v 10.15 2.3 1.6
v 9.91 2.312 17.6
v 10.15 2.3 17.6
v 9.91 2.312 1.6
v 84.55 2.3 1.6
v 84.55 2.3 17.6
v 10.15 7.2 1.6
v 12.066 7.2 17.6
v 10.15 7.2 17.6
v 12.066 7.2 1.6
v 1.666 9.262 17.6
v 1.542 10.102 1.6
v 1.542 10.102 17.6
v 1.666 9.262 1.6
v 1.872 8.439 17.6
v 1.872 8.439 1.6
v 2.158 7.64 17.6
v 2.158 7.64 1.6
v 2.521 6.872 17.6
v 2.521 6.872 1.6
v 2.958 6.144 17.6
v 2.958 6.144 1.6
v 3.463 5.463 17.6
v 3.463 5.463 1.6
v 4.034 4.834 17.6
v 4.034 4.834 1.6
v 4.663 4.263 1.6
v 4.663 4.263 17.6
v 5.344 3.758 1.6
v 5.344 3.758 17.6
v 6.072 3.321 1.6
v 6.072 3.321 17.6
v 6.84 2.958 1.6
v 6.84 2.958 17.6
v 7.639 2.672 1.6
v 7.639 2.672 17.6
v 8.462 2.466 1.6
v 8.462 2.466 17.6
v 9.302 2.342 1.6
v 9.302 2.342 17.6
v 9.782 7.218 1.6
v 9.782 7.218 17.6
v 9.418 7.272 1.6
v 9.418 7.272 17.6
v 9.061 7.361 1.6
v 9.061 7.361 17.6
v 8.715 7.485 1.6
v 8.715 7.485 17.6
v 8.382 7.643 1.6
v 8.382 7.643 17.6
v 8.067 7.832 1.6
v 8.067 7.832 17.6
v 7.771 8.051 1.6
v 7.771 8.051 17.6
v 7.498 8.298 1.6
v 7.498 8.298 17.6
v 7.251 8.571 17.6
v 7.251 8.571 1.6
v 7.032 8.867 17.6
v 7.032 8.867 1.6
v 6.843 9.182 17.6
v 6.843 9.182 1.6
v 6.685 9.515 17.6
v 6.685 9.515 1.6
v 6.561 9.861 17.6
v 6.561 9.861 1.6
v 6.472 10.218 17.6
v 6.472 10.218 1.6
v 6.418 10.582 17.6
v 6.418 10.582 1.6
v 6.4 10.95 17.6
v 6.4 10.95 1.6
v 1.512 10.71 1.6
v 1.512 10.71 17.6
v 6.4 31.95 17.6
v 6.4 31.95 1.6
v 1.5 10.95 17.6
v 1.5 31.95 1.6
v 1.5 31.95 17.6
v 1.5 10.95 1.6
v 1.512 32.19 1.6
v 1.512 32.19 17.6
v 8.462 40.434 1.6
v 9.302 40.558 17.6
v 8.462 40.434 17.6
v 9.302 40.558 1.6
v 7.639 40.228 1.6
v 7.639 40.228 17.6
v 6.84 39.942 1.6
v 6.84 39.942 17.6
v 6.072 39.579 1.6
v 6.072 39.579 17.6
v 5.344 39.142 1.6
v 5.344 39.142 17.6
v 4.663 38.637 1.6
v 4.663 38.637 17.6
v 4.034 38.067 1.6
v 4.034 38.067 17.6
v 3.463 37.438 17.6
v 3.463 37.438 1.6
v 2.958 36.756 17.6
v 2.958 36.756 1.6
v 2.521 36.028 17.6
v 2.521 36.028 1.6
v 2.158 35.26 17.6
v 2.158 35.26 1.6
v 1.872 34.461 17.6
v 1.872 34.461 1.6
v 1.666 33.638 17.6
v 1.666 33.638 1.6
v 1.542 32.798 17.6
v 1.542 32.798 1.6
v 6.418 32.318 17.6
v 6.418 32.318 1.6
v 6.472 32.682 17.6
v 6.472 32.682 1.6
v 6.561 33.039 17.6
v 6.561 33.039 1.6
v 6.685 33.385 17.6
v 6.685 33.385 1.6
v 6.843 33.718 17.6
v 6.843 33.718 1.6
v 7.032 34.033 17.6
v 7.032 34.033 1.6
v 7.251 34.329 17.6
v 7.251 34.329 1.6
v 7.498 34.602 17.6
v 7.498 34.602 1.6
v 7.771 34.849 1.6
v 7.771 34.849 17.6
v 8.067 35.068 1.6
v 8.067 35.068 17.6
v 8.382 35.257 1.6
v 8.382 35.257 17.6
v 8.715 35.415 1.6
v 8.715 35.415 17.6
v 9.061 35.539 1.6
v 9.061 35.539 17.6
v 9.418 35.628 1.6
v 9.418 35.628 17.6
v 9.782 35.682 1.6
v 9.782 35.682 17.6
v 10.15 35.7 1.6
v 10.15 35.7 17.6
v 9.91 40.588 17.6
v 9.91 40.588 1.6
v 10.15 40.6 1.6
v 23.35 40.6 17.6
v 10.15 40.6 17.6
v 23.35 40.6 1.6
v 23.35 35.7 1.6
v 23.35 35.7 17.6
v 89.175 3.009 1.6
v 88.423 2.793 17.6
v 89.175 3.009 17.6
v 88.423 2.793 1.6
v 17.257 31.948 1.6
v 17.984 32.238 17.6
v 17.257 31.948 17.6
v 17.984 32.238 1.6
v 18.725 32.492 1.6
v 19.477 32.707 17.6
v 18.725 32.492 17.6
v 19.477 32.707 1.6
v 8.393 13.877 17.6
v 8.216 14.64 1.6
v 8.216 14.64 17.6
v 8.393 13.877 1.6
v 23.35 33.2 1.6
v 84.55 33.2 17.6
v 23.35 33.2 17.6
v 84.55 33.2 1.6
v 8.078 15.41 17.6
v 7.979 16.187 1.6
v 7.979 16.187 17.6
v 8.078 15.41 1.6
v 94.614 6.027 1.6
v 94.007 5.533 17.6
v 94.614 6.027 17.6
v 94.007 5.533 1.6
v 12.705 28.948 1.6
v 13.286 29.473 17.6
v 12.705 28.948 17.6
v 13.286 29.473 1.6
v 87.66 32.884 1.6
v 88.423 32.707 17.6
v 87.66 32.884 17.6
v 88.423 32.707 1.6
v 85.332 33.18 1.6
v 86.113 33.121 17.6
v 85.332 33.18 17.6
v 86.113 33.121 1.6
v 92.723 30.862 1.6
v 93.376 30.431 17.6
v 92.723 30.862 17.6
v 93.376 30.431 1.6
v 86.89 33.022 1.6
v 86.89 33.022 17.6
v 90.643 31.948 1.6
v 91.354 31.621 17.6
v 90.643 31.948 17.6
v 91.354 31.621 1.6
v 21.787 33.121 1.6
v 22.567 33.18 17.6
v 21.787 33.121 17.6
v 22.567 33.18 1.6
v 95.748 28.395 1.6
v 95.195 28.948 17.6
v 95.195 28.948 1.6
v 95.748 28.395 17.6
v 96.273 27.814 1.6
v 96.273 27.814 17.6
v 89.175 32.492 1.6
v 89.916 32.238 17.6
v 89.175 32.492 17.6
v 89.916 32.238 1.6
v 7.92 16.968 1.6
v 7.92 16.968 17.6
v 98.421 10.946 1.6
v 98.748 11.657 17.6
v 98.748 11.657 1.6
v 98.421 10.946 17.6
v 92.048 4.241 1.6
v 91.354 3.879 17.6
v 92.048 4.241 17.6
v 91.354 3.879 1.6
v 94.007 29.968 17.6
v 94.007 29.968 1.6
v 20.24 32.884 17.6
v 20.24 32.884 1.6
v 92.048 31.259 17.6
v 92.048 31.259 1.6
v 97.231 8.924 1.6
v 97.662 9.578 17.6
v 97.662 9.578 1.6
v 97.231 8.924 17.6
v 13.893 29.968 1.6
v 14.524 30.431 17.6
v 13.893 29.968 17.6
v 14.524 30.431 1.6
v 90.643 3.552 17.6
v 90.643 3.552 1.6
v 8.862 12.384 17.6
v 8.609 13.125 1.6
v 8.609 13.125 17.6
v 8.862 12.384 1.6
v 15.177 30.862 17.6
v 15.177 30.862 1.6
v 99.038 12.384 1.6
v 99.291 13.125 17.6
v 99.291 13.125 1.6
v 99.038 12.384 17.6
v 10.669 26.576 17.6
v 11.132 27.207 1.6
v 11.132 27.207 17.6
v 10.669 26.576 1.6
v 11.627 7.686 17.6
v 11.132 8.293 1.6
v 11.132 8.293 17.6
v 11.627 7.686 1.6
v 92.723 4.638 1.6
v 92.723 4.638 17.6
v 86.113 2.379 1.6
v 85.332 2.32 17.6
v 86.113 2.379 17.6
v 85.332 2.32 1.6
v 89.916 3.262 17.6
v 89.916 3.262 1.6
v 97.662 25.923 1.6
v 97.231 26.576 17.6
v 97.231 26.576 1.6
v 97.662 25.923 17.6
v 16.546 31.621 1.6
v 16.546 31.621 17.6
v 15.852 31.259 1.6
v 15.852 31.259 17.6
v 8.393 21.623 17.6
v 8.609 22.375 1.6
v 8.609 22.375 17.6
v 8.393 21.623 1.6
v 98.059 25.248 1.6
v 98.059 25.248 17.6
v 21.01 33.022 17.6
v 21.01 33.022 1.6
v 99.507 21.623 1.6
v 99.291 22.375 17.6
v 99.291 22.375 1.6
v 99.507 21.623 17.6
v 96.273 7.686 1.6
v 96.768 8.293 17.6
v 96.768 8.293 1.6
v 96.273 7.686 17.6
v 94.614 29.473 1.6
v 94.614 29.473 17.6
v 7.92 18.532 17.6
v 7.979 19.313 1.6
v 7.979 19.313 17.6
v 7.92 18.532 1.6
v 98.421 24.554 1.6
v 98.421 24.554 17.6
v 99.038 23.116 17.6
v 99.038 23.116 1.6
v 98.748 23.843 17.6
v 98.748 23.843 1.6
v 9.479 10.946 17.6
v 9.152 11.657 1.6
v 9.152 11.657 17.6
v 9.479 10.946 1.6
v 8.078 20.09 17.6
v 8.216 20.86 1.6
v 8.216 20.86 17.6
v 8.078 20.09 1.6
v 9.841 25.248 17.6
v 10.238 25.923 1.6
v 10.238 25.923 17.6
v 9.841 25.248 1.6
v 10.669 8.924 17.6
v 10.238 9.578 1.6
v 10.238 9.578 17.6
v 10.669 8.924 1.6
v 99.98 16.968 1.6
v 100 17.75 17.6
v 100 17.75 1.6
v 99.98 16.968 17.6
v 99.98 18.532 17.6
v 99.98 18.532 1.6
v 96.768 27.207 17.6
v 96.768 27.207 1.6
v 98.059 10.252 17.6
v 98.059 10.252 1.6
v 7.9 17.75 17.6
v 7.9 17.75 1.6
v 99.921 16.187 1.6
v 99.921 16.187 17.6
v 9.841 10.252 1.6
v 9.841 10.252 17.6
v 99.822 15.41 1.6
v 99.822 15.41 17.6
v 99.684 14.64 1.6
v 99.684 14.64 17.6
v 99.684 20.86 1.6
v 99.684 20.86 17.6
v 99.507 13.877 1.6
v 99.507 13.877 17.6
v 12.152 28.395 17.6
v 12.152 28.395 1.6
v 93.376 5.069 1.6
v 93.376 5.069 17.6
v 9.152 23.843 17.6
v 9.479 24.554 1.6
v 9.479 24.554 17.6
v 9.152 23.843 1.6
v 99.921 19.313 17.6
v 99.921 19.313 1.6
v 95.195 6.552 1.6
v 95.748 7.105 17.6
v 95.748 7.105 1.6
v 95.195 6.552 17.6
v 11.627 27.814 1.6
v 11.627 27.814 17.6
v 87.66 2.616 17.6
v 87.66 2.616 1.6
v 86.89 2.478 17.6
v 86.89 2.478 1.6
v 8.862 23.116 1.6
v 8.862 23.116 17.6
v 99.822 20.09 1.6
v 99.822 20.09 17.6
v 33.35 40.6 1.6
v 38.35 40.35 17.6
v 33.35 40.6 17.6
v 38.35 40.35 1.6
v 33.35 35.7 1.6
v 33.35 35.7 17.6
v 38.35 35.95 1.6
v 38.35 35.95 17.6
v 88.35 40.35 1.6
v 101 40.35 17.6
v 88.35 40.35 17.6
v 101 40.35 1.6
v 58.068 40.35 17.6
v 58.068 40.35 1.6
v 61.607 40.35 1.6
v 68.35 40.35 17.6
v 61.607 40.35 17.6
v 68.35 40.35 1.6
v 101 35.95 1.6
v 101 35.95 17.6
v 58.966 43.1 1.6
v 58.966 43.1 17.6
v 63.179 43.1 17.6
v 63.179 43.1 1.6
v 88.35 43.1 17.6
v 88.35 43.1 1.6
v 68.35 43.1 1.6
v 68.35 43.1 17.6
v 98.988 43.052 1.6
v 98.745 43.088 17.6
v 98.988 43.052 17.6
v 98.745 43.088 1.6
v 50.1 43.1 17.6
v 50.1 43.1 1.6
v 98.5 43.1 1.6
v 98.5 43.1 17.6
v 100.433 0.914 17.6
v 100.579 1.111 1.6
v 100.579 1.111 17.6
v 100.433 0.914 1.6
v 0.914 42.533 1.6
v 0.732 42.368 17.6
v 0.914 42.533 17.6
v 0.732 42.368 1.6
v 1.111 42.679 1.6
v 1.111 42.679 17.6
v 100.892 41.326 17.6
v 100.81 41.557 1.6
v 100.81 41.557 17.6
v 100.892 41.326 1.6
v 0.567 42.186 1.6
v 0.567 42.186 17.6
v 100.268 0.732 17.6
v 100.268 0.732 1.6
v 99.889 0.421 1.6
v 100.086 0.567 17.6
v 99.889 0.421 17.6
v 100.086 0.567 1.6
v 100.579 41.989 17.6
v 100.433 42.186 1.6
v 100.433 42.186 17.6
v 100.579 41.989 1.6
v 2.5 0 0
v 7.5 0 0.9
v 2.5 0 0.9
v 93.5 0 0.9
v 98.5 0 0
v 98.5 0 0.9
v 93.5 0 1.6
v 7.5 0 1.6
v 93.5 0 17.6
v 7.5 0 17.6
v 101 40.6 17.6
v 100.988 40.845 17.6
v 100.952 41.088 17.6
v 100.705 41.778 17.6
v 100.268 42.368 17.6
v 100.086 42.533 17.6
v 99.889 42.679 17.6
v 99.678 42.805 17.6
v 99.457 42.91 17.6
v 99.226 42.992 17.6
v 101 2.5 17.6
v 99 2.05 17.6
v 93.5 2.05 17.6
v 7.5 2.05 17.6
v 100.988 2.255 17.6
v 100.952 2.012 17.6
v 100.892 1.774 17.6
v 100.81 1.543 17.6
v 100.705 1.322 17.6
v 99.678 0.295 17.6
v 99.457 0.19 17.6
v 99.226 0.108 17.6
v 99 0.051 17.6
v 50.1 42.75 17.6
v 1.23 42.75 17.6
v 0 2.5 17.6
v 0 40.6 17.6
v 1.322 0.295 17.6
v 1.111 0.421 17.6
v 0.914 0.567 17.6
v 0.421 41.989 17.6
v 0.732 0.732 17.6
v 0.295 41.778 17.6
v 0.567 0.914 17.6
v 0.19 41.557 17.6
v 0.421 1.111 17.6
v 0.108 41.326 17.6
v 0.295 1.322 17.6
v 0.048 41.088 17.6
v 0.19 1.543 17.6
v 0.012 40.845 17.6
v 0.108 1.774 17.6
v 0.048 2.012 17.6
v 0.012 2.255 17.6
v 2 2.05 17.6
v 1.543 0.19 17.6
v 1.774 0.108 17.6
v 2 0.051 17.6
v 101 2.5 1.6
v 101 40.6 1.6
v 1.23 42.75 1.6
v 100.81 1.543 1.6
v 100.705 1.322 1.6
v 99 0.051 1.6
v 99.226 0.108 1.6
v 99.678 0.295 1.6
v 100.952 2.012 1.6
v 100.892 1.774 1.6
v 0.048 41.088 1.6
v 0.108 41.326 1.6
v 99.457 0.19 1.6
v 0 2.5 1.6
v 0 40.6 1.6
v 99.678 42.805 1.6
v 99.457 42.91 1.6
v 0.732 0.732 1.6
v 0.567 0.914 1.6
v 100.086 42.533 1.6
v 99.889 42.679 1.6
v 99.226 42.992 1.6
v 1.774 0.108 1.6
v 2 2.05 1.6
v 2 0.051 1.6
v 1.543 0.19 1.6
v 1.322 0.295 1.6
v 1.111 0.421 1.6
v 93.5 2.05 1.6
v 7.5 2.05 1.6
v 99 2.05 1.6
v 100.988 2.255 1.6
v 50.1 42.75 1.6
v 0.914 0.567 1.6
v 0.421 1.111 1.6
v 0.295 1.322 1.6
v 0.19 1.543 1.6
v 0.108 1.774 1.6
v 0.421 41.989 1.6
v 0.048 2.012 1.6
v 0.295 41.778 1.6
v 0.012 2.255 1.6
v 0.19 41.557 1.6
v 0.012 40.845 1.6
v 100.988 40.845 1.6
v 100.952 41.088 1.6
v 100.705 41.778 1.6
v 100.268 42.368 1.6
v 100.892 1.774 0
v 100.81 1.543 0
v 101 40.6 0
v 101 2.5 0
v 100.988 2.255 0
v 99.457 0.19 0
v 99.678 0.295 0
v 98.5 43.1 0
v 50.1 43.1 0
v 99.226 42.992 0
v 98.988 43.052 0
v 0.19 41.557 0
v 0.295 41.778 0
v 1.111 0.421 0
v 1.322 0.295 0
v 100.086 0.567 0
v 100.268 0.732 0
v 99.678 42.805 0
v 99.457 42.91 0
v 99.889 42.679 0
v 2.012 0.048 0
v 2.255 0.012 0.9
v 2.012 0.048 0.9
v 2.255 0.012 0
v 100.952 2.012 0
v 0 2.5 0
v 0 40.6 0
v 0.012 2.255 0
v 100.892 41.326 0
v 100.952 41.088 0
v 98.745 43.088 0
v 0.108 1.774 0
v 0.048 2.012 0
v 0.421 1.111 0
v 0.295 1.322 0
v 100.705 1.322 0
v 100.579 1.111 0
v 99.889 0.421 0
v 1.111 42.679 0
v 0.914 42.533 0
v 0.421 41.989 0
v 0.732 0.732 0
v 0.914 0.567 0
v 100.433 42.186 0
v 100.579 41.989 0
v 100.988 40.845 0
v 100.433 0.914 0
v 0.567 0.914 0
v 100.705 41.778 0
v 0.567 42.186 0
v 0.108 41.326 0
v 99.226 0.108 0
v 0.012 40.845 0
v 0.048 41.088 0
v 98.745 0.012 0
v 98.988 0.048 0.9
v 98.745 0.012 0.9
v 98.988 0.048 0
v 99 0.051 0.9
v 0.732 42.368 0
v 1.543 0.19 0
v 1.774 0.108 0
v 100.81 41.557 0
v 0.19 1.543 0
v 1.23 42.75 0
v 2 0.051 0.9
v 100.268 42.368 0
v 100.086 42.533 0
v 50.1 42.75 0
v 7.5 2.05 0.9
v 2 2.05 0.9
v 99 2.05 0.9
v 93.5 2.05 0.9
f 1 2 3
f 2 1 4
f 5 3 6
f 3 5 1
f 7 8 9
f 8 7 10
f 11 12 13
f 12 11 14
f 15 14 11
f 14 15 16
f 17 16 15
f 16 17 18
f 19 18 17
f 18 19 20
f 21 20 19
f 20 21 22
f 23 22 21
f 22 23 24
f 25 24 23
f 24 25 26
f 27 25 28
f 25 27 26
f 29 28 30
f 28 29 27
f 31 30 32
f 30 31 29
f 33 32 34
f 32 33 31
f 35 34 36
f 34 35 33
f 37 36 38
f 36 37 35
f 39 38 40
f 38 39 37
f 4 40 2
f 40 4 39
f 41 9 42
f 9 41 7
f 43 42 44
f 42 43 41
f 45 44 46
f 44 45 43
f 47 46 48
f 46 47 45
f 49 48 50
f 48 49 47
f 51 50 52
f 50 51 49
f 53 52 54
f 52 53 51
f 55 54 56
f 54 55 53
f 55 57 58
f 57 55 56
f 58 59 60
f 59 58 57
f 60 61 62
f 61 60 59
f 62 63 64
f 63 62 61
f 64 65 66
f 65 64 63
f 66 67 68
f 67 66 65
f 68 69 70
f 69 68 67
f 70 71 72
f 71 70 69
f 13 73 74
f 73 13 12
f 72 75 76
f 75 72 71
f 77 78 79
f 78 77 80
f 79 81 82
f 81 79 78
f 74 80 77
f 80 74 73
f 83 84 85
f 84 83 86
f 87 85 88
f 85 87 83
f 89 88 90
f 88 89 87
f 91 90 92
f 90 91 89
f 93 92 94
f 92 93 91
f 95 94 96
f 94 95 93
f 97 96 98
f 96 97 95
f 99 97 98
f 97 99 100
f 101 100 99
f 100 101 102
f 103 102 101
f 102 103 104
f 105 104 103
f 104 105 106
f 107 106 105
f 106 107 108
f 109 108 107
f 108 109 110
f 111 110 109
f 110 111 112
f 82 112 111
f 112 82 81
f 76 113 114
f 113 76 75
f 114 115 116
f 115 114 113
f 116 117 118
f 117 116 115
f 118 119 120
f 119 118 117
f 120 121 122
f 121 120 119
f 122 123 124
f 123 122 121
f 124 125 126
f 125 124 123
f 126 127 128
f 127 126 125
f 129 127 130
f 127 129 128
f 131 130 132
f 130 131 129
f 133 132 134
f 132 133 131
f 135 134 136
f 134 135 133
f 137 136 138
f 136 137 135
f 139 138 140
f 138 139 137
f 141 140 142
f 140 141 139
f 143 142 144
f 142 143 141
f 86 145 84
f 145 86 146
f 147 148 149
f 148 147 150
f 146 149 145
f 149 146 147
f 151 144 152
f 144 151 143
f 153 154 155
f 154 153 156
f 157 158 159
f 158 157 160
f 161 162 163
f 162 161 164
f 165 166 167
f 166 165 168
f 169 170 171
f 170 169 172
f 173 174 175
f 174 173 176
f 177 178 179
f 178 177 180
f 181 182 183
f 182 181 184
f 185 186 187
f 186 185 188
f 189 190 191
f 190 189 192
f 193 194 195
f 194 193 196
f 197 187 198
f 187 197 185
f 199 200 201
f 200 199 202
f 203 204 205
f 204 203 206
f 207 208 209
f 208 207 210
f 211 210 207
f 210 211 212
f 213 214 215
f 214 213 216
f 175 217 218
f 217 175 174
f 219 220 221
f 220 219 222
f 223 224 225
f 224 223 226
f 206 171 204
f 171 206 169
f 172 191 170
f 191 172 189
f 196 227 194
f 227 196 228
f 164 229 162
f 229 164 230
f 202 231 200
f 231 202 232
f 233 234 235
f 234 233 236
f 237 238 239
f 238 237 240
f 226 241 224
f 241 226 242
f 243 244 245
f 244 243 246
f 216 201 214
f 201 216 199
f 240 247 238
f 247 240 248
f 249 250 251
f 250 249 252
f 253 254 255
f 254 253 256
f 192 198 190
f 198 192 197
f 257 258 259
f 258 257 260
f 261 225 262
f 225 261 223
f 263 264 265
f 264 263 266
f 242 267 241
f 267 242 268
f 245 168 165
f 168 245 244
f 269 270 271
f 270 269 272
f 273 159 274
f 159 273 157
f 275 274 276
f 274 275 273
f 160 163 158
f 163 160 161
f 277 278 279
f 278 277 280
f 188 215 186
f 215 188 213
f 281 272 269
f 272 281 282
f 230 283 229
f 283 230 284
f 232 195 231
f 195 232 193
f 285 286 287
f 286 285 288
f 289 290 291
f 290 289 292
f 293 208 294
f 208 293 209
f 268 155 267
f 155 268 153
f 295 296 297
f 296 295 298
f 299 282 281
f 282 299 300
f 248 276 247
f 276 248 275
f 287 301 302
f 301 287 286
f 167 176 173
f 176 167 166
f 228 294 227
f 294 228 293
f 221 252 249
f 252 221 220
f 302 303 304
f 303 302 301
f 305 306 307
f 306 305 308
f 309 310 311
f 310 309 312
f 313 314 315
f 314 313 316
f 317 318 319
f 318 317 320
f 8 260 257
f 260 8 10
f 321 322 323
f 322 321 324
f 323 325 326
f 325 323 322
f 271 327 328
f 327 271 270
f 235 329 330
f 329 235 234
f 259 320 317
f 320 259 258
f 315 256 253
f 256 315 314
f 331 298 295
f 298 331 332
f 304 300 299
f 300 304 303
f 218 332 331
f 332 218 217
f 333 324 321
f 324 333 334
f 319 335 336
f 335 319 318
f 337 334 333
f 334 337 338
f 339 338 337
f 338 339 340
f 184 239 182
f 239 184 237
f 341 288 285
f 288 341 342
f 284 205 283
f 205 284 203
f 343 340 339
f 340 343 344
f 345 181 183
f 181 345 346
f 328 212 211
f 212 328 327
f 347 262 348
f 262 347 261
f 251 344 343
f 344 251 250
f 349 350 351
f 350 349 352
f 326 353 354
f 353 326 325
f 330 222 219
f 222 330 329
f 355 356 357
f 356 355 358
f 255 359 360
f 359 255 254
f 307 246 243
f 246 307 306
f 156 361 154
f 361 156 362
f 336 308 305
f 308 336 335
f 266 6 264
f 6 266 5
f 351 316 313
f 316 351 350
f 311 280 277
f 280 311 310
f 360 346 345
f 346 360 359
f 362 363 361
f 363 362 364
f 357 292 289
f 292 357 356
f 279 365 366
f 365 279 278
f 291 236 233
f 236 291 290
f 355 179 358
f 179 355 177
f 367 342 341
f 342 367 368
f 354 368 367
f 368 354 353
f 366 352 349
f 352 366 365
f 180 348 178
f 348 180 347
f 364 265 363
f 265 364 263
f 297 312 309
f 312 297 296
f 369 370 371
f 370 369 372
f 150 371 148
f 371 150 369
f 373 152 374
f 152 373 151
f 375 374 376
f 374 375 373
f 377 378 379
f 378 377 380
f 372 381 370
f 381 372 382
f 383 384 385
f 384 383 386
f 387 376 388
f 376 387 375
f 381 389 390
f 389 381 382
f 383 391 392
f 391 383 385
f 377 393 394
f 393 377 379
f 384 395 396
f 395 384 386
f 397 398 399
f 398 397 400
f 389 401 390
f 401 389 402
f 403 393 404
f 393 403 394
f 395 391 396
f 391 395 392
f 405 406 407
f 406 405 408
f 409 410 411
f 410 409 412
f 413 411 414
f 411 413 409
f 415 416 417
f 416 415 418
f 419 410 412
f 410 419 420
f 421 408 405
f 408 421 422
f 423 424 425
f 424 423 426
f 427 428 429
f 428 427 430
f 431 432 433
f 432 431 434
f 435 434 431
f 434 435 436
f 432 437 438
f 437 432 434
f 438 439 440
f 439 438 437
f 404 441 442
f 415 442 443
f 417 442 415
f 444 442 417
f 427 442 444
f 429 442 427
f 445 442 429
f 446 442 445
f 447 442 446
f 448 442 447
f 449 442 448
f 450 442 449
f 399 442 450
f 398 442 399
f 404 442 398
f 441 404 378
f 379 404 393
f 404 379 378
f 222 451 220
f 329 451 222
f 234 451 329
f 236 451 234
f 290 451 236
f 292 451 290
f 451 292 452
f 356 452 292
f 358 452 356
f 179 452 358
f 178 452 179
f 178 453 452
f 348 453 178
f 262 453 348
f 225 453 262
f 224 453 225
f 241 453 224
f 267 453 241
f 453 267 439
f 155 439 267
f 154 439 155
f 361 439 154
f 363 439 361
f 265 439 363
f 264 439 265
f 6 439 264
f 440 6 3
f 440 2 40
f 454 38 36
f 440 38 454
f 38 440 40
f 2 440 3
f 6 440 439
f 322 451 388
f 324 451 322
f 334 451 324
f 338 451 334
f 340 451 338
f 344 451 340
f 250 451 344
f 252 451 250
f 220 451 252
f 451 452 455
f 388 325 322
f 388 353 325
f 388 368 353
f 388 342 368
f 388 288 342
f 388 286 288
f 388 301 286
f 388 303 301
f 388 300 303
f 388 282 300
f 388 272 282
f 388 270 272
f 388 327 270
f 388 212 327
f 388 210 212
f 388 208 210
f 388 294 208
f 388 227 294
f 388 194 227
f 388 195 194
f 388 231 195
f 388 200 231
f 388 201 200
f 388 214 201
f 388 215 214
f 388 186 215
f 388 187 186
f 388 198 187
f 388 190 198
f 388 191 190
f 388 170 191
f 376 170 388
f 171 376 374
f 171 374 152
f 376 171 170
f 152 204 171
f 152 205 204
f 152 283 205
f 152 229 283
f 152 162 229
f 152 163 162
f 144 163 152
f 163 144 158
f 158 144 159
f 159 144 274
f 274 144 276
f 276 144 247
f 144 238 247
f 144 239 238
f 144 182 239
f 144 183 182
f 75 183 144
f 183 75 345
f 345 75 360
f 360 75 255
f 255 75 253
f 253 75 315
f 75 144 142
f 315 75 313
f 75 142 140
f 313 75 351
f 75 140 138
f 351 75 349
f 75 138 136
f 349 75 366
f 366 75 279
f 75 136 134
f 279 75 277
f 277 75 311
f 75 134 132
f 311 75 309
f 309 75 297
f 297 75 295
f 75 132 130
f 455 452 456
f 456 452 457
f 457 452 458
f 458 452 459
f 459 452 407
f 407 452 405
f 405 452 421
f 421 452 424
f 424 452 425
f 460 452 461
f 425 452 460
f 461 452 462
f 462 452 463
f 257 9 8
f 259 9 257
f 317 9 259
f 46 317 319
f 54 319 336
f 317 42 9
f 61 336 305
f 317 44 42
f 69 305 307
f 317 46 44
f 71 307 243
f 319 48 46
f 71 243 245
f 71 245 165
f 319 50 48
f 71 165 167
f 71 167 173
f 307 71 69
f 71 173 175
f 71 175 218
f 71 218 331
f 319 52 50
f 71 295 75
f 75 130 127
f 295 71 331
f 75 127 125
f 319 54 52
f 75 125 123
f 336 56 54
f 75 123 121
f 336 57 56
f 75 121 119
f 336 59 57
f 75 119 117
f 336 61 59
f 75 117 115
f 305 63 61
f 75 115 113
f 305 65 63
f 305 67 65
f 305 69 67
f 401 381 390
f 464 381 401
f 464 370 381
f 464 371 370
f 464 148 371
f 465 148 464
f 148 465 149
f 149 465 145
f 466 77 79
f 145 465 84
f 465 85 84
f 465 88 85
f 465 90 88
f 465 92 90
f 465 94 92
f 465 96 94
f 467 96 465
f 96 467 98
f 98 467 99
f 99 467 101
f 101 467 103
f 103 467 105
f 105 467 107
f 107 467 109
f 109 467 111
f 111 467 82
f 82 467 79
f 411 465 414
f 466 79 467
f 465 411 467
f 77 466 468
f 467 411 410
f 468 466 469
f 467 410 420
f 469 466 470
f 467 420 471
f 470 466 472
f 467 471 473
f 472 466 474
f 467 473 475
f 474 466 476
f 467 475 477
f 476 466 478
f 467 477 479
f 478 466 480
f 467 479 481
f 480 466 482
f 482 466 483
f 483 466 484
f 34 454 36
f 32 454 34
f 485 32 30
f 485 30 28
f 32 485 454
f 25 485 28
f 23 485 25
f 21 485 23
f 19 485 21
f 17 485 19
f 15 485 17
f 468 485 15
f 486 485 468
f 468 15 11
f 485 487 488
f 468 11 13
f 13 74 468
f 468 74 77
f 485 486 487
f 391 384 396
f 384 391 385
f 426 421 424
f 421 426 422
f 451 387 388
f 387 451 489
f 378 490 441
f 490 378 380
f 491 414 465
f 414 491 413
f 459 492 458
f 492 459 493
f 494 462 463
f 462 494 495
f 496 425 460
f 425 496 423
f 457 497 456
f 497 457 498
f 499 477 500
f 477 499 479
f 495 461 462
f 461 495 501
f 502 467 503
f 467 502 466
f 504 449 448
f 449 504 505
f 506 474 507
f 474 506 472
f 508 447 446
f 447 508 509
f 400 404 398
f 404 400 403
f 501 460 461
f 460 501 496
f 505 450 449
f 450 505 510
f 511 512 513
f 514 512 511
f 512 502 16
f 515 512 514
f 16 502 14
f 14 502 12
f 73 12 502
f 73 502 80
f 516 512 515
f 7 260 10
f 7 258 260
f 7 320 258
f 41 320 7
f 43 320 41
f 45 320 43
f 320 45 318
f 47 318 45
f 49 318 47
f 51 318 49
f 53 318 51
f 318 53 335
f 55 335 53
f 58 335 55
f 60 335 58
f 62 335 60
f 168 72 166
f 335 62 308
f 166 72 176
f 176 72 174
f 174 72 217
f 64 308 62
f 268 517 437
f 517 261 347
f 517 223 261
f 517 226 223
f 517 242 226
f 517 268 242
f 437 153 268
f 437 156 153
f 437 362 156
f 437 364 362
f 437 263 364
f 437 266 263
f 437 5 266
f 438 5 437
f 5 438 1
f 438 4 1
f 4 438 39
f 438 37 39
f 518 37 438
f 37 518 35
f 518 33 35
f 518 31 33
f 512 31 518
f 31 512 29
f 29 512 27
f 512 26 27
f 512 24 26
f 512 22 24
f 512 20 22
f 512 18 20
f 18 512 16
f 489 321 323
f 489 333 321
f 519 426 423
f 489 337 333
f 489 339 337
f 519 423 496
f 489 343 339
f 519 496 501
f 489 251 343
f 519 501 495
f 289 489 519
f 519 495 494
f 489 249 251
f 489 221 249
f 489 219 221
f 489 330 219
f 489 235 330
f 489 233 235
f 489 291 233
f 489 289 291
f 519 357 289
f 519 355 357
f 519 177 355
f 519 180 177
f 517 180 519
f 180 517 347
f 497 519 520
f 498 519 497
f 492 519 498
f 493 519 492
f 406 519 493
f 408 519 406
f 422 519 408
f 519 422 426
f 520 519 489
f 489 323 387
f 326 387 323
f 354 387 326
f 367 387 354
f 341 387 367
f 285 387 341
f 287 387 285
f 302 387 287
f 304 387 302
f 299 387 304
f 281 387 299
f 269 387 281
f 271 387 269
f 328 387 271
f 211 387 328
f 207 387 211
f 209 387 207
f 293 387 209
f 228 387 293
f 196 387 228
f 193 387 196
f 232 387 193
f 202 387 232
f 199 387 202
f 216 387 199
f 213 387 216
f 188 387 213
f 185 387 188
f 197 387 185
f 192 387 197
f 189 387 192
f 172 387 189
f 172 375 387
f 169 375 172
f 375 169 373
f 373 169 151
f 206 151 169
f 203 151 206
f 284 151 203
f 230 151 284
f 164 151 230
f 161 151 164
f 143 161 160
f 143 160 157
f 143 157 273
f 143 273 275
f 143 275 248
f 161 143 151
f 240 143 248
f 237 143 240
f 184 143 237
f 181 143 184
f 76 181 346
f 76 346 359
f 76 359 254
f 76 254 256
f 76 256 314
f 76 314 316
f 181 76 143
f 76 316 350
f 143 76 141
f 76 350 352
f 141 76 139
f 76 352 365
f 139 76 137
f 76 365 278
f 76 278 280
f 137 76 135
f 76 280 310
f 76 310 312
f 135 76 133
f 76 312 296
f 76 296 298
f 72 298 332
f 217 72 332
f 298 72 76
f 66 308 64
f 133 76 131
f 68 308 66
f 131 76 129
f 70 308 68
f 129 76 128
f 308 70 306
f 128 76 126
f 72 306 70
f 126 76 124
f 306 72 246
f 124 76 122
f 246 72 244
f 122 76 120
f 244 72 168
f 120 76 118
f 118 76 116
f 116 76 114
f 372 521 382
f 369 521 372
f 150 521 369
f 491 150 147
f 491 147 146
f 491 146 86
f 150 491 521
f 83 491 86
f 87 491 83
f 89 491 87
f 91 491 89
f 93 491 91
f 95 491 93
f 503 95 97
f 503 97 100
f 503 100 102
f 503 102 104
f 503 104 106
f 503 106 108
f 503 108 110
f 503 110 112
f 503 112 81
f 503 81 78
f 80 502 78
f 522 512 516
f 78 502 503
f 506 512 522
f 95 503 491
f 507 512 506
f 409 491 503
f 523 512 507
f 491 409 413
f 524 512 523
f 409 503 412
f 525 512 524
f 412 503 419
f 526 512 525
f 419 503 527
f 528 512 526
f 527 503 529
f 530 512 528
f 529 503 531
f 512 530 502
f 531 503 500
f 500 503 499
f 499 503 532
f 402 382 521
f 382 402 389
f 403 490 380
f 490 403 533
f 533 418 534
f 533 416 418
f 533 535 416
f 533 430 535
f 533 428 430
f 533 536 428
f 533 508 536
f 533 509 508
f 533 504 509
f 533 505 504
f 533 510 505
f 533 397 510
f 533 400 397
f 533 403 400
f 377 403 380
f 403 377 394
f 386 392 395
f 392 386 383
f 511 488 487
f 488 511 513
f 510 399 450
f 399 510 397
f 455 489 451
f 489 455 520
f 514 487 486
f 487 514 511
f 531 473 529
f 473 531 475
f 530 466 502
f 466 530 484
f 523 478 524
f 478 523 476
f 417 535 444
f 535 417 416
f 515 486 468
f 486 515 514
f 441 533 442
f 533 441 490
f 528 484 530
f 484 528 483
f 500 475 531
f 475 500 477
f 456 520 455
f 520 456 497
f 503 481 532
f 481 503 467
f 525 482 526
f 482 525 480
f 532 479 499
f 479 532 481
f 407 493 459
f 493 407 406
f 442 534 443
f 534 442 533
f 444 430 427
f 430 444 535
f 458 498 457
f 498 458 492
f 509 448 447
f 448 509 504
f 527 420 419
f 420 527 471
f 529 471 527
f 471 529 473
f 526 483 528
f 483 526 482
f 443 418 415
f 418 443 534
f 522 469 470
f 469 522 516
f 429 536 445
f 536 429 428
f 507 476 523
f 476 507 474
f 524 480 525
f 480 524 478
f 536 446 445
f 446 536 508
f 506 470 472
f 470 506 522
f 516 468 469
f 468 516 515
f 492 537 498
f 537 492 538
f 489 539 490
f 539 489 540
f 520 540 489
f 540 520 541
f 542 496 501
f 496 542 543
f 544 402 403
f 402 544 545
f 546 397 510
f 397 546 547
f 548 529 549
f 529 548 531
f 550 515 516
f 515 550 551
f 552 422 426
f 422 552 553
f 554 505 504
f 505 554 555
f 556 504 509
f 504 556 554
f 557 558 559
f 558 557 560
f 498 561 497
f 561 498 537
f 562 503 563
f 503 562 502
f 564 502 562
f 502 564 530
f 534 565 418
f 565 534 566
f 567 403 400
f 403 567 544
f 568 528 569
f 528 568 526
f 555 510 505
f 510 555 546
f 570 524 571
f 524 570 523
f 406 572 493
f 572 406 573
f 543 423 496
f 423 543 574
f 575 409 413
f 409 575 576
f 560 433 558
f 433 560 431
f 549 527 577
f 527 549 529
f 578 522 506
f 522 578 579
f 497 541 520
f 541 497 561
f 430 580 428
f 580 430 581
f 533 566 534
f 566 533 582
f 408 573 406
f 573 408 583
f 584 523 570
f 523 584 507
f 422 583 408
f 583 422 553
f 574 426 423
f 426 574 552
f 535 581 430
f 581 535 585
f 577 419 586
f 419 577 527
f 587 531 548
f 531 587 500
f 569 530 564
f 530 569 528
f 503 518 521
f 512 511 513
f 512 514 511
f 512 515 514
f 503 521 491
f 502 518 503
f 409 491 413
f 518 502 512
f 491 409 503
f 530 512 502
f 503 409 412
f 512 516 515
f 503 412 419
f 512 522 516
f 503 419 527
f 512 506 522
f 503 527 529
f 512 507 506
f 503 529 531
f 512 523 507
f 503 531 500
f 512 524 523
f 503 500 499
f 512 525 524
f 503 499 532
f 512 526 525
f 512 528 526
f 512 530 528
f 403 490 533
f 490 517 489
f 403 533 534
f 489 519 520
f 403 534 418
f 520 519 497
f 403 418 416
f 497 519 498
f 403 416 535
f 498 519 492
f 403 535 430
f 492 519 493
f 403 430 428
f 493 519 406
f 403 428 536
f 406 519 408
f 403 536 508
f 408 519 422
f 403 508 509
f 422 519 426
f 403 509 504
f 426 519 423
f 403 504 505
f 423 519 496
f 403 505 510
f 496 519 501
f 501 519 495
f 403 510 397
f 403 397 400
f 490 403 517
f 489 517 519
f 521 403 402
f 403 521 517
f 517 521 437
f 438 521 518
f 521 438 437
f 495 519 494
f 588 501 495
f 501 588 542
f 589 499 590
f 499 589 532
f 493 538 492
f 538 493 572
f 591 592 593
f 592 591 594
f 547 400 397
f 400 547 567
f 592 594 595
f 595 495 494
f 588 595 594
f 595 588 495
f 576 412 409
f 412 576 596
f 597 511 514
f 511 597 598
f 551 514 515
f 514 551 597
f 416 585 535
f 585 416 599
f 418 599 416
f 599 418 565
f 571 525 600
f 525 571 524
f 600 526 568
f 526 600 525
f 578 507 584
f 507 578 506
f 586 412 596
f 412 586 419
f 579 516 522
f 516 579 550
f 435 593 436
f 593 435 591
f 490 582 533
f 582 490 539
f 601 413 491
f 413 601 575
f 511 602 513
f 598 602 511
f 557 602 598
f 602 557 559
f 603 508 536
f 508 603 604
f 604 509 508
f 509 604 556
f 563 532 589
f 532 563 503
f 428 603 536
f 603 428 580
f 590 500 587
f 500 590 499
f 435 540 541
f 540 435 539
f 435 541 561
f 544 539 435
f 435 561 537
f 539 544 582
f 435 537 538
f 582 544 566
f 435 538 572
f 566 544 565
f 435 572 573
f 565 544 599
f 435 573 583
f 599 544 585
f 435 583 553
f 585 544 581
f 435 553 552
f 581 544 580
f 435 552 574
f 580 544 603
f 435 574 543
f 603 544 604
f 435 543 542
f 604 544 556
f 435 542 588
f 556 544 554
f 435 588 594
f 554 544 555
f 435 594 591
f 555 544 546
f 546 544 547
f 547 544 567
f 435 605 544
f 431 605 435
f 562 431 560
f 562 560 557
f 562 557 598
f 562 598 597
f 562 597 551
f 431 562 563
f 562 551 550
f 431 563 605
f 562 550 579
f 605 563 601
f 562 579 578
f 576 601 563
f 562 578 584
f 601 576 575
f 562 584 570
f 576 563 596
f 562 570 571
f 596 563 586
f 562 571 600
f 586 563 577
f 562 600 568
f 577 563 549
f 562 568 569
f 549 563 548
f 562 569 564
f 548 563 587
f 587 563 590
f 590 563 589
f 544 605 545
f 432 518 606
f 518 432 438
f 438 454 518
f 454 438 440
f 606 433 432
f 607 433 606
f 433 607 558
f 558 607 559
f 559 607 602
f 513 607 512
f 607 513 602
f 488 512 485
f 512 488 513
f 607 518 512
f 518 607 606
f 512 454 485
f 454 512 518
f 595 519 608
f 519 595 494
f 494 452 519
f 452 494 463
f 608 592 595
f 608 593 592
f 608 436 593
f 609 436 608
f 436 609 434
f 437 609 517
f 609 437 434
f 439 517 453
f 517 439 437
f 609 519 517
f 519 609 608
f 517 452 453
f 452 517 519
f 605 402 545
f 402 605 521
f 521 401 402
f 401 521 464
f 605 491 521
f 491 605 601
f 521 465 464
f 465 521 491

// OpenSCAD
module Path(){
  translate([0, 0, -0.002])union(){
      translate([0, 0, -0.002])hull(){
          translate([0, 0, -0.002])cylinder(d=4.9,h=17.008,$fn=64);
          translate([-13.2, 0, -0.002])cylinder(d=4.9,h=17.008,$fn=64);
        }

      translate([-13.2, 0, -0.002])linear_extrude(height=17)translate([0, 6.2, 0])rotate([0, 0, 180])intersection(){
                difference(){
                  circle(d=17.3);
                  circle(d=7.5);
                }

                translate([0, 0, -0.1])polygon(points=[[0, 0], [0, 0.173e2], [0.173e2, 0.1059319481262460518e-14]]);
              }

      translate([0, 0, -0.002])hull(){
          translate([-19.4, 6.199999999999998, -0.002])cylinder(d=4.9,h=17.008,$fn=64);
          translate([-19.4, 27.2, -0.002])cylinder(d=4.9,h=17.008,$fn=64);
        }

      translate([-19.4, 27.2, -0.002])linear_extrude(height=17)translate([6.2, 0, 0])rotate([0, 0, 90])intersection(){
                difference(){
                  circle(d=17.3);
                  circle(d=7.5);
                }

                translate([0, 0, -0.1])polygon(points=[[0, 0], [0, 0.173e2], [0.173e2, 0.1059319481262460518e-14]]);
              }

      translate([0, 0, -0.002])hull(){
          translate([-13.200000000000001, 33.4, -0.002])cylinder(d=4.9,h=17.008,$fn=64);
          translate([-7.592810154713589e-16, 33.4, -0.002])cylinder(d=4.9,h=17.008,$fn=64);
        }

    }
}
module SmdDispenser(){
  difference(){
    color("pink")union(){
        translate([0, 0, 1.6])difference(){
            union()translate([2.5, 2.5, 0])hull(){
                  cylinder(d=5,h=16,$fn=64);
                  translate([96, 0, 0])cylinder(d=5,h=16,$fn=64);
                  translate([0, 38.1, 0])cylinder(d=5,h=16,$fn=64);
                  translate([96, 38.1, 0])cylinder(d=5,h=16,$fn=64);
                }

            translate([23.35, 38.15, -0.002])union(){
                translate([7.592810154713589e-16, -33.4, -0.002])union(){
                    translate([0, 0, -0.002])Path();
                    translate([0, 13, 0])hull(){
                        translate([0, 0, -0.1])cylinder(d=30.9,h=17.208,$fn=124);
                        translate([61.19999999999999, 0, -0.1])cylinder(d=30.9,h=17.408,$fn=124);
                      }

                  }

                translate([0, 0, -0.004])hull(){
                    translate([0, -2.45, -0.004])cube([10, 4.9, 16.016]);
                    translate([5, -2.2, -0.004])cube([10, 4.4, 16.016]);
                  }

                translate([0, -2.2, -0.004])color("blue")cube([101, 4.4, 16.016]);
                translate([37, 0, -0.004])hull(){
                    translate([1, 12.25, -0.004])cube([6, 0.001, 16.016]);
                    translate([-3, 0, -0.004])cube([3, 0.001, 16.016]);
                  }

                translate([45, 0, -0.1])cube([20, 14.7, 17.208]);
              }

          }

        union()translate([2.5, 2.5, 0])hull(){
              cylinder(d=5,h=1.6,$fn=64);
              translate([96, 0, 0])cylinder(d=5,h=1.6,$fn=64);
              translate([0, 38.1, 0])cylinder(d=5,h=1.6,$fn=64);
              translate([96, 38.1, 0])cylinder(d=5,h=1.6,$fn=64);
            }

      }

    translate([-0.1, 42.75, -0.1])color("silver")cube([50.2, 0.5, 18.8]);
    translate([0, 0, 1])color("HotPink")union(){
          translate([2, 0, -0.1])cube([5.5, 2.05, 18.8]);
          translate([93.5, 0, -0.1])cube([5.5, 2.05, 19]);
        }

  }
}
$fn=64;
SmdDispenser();
